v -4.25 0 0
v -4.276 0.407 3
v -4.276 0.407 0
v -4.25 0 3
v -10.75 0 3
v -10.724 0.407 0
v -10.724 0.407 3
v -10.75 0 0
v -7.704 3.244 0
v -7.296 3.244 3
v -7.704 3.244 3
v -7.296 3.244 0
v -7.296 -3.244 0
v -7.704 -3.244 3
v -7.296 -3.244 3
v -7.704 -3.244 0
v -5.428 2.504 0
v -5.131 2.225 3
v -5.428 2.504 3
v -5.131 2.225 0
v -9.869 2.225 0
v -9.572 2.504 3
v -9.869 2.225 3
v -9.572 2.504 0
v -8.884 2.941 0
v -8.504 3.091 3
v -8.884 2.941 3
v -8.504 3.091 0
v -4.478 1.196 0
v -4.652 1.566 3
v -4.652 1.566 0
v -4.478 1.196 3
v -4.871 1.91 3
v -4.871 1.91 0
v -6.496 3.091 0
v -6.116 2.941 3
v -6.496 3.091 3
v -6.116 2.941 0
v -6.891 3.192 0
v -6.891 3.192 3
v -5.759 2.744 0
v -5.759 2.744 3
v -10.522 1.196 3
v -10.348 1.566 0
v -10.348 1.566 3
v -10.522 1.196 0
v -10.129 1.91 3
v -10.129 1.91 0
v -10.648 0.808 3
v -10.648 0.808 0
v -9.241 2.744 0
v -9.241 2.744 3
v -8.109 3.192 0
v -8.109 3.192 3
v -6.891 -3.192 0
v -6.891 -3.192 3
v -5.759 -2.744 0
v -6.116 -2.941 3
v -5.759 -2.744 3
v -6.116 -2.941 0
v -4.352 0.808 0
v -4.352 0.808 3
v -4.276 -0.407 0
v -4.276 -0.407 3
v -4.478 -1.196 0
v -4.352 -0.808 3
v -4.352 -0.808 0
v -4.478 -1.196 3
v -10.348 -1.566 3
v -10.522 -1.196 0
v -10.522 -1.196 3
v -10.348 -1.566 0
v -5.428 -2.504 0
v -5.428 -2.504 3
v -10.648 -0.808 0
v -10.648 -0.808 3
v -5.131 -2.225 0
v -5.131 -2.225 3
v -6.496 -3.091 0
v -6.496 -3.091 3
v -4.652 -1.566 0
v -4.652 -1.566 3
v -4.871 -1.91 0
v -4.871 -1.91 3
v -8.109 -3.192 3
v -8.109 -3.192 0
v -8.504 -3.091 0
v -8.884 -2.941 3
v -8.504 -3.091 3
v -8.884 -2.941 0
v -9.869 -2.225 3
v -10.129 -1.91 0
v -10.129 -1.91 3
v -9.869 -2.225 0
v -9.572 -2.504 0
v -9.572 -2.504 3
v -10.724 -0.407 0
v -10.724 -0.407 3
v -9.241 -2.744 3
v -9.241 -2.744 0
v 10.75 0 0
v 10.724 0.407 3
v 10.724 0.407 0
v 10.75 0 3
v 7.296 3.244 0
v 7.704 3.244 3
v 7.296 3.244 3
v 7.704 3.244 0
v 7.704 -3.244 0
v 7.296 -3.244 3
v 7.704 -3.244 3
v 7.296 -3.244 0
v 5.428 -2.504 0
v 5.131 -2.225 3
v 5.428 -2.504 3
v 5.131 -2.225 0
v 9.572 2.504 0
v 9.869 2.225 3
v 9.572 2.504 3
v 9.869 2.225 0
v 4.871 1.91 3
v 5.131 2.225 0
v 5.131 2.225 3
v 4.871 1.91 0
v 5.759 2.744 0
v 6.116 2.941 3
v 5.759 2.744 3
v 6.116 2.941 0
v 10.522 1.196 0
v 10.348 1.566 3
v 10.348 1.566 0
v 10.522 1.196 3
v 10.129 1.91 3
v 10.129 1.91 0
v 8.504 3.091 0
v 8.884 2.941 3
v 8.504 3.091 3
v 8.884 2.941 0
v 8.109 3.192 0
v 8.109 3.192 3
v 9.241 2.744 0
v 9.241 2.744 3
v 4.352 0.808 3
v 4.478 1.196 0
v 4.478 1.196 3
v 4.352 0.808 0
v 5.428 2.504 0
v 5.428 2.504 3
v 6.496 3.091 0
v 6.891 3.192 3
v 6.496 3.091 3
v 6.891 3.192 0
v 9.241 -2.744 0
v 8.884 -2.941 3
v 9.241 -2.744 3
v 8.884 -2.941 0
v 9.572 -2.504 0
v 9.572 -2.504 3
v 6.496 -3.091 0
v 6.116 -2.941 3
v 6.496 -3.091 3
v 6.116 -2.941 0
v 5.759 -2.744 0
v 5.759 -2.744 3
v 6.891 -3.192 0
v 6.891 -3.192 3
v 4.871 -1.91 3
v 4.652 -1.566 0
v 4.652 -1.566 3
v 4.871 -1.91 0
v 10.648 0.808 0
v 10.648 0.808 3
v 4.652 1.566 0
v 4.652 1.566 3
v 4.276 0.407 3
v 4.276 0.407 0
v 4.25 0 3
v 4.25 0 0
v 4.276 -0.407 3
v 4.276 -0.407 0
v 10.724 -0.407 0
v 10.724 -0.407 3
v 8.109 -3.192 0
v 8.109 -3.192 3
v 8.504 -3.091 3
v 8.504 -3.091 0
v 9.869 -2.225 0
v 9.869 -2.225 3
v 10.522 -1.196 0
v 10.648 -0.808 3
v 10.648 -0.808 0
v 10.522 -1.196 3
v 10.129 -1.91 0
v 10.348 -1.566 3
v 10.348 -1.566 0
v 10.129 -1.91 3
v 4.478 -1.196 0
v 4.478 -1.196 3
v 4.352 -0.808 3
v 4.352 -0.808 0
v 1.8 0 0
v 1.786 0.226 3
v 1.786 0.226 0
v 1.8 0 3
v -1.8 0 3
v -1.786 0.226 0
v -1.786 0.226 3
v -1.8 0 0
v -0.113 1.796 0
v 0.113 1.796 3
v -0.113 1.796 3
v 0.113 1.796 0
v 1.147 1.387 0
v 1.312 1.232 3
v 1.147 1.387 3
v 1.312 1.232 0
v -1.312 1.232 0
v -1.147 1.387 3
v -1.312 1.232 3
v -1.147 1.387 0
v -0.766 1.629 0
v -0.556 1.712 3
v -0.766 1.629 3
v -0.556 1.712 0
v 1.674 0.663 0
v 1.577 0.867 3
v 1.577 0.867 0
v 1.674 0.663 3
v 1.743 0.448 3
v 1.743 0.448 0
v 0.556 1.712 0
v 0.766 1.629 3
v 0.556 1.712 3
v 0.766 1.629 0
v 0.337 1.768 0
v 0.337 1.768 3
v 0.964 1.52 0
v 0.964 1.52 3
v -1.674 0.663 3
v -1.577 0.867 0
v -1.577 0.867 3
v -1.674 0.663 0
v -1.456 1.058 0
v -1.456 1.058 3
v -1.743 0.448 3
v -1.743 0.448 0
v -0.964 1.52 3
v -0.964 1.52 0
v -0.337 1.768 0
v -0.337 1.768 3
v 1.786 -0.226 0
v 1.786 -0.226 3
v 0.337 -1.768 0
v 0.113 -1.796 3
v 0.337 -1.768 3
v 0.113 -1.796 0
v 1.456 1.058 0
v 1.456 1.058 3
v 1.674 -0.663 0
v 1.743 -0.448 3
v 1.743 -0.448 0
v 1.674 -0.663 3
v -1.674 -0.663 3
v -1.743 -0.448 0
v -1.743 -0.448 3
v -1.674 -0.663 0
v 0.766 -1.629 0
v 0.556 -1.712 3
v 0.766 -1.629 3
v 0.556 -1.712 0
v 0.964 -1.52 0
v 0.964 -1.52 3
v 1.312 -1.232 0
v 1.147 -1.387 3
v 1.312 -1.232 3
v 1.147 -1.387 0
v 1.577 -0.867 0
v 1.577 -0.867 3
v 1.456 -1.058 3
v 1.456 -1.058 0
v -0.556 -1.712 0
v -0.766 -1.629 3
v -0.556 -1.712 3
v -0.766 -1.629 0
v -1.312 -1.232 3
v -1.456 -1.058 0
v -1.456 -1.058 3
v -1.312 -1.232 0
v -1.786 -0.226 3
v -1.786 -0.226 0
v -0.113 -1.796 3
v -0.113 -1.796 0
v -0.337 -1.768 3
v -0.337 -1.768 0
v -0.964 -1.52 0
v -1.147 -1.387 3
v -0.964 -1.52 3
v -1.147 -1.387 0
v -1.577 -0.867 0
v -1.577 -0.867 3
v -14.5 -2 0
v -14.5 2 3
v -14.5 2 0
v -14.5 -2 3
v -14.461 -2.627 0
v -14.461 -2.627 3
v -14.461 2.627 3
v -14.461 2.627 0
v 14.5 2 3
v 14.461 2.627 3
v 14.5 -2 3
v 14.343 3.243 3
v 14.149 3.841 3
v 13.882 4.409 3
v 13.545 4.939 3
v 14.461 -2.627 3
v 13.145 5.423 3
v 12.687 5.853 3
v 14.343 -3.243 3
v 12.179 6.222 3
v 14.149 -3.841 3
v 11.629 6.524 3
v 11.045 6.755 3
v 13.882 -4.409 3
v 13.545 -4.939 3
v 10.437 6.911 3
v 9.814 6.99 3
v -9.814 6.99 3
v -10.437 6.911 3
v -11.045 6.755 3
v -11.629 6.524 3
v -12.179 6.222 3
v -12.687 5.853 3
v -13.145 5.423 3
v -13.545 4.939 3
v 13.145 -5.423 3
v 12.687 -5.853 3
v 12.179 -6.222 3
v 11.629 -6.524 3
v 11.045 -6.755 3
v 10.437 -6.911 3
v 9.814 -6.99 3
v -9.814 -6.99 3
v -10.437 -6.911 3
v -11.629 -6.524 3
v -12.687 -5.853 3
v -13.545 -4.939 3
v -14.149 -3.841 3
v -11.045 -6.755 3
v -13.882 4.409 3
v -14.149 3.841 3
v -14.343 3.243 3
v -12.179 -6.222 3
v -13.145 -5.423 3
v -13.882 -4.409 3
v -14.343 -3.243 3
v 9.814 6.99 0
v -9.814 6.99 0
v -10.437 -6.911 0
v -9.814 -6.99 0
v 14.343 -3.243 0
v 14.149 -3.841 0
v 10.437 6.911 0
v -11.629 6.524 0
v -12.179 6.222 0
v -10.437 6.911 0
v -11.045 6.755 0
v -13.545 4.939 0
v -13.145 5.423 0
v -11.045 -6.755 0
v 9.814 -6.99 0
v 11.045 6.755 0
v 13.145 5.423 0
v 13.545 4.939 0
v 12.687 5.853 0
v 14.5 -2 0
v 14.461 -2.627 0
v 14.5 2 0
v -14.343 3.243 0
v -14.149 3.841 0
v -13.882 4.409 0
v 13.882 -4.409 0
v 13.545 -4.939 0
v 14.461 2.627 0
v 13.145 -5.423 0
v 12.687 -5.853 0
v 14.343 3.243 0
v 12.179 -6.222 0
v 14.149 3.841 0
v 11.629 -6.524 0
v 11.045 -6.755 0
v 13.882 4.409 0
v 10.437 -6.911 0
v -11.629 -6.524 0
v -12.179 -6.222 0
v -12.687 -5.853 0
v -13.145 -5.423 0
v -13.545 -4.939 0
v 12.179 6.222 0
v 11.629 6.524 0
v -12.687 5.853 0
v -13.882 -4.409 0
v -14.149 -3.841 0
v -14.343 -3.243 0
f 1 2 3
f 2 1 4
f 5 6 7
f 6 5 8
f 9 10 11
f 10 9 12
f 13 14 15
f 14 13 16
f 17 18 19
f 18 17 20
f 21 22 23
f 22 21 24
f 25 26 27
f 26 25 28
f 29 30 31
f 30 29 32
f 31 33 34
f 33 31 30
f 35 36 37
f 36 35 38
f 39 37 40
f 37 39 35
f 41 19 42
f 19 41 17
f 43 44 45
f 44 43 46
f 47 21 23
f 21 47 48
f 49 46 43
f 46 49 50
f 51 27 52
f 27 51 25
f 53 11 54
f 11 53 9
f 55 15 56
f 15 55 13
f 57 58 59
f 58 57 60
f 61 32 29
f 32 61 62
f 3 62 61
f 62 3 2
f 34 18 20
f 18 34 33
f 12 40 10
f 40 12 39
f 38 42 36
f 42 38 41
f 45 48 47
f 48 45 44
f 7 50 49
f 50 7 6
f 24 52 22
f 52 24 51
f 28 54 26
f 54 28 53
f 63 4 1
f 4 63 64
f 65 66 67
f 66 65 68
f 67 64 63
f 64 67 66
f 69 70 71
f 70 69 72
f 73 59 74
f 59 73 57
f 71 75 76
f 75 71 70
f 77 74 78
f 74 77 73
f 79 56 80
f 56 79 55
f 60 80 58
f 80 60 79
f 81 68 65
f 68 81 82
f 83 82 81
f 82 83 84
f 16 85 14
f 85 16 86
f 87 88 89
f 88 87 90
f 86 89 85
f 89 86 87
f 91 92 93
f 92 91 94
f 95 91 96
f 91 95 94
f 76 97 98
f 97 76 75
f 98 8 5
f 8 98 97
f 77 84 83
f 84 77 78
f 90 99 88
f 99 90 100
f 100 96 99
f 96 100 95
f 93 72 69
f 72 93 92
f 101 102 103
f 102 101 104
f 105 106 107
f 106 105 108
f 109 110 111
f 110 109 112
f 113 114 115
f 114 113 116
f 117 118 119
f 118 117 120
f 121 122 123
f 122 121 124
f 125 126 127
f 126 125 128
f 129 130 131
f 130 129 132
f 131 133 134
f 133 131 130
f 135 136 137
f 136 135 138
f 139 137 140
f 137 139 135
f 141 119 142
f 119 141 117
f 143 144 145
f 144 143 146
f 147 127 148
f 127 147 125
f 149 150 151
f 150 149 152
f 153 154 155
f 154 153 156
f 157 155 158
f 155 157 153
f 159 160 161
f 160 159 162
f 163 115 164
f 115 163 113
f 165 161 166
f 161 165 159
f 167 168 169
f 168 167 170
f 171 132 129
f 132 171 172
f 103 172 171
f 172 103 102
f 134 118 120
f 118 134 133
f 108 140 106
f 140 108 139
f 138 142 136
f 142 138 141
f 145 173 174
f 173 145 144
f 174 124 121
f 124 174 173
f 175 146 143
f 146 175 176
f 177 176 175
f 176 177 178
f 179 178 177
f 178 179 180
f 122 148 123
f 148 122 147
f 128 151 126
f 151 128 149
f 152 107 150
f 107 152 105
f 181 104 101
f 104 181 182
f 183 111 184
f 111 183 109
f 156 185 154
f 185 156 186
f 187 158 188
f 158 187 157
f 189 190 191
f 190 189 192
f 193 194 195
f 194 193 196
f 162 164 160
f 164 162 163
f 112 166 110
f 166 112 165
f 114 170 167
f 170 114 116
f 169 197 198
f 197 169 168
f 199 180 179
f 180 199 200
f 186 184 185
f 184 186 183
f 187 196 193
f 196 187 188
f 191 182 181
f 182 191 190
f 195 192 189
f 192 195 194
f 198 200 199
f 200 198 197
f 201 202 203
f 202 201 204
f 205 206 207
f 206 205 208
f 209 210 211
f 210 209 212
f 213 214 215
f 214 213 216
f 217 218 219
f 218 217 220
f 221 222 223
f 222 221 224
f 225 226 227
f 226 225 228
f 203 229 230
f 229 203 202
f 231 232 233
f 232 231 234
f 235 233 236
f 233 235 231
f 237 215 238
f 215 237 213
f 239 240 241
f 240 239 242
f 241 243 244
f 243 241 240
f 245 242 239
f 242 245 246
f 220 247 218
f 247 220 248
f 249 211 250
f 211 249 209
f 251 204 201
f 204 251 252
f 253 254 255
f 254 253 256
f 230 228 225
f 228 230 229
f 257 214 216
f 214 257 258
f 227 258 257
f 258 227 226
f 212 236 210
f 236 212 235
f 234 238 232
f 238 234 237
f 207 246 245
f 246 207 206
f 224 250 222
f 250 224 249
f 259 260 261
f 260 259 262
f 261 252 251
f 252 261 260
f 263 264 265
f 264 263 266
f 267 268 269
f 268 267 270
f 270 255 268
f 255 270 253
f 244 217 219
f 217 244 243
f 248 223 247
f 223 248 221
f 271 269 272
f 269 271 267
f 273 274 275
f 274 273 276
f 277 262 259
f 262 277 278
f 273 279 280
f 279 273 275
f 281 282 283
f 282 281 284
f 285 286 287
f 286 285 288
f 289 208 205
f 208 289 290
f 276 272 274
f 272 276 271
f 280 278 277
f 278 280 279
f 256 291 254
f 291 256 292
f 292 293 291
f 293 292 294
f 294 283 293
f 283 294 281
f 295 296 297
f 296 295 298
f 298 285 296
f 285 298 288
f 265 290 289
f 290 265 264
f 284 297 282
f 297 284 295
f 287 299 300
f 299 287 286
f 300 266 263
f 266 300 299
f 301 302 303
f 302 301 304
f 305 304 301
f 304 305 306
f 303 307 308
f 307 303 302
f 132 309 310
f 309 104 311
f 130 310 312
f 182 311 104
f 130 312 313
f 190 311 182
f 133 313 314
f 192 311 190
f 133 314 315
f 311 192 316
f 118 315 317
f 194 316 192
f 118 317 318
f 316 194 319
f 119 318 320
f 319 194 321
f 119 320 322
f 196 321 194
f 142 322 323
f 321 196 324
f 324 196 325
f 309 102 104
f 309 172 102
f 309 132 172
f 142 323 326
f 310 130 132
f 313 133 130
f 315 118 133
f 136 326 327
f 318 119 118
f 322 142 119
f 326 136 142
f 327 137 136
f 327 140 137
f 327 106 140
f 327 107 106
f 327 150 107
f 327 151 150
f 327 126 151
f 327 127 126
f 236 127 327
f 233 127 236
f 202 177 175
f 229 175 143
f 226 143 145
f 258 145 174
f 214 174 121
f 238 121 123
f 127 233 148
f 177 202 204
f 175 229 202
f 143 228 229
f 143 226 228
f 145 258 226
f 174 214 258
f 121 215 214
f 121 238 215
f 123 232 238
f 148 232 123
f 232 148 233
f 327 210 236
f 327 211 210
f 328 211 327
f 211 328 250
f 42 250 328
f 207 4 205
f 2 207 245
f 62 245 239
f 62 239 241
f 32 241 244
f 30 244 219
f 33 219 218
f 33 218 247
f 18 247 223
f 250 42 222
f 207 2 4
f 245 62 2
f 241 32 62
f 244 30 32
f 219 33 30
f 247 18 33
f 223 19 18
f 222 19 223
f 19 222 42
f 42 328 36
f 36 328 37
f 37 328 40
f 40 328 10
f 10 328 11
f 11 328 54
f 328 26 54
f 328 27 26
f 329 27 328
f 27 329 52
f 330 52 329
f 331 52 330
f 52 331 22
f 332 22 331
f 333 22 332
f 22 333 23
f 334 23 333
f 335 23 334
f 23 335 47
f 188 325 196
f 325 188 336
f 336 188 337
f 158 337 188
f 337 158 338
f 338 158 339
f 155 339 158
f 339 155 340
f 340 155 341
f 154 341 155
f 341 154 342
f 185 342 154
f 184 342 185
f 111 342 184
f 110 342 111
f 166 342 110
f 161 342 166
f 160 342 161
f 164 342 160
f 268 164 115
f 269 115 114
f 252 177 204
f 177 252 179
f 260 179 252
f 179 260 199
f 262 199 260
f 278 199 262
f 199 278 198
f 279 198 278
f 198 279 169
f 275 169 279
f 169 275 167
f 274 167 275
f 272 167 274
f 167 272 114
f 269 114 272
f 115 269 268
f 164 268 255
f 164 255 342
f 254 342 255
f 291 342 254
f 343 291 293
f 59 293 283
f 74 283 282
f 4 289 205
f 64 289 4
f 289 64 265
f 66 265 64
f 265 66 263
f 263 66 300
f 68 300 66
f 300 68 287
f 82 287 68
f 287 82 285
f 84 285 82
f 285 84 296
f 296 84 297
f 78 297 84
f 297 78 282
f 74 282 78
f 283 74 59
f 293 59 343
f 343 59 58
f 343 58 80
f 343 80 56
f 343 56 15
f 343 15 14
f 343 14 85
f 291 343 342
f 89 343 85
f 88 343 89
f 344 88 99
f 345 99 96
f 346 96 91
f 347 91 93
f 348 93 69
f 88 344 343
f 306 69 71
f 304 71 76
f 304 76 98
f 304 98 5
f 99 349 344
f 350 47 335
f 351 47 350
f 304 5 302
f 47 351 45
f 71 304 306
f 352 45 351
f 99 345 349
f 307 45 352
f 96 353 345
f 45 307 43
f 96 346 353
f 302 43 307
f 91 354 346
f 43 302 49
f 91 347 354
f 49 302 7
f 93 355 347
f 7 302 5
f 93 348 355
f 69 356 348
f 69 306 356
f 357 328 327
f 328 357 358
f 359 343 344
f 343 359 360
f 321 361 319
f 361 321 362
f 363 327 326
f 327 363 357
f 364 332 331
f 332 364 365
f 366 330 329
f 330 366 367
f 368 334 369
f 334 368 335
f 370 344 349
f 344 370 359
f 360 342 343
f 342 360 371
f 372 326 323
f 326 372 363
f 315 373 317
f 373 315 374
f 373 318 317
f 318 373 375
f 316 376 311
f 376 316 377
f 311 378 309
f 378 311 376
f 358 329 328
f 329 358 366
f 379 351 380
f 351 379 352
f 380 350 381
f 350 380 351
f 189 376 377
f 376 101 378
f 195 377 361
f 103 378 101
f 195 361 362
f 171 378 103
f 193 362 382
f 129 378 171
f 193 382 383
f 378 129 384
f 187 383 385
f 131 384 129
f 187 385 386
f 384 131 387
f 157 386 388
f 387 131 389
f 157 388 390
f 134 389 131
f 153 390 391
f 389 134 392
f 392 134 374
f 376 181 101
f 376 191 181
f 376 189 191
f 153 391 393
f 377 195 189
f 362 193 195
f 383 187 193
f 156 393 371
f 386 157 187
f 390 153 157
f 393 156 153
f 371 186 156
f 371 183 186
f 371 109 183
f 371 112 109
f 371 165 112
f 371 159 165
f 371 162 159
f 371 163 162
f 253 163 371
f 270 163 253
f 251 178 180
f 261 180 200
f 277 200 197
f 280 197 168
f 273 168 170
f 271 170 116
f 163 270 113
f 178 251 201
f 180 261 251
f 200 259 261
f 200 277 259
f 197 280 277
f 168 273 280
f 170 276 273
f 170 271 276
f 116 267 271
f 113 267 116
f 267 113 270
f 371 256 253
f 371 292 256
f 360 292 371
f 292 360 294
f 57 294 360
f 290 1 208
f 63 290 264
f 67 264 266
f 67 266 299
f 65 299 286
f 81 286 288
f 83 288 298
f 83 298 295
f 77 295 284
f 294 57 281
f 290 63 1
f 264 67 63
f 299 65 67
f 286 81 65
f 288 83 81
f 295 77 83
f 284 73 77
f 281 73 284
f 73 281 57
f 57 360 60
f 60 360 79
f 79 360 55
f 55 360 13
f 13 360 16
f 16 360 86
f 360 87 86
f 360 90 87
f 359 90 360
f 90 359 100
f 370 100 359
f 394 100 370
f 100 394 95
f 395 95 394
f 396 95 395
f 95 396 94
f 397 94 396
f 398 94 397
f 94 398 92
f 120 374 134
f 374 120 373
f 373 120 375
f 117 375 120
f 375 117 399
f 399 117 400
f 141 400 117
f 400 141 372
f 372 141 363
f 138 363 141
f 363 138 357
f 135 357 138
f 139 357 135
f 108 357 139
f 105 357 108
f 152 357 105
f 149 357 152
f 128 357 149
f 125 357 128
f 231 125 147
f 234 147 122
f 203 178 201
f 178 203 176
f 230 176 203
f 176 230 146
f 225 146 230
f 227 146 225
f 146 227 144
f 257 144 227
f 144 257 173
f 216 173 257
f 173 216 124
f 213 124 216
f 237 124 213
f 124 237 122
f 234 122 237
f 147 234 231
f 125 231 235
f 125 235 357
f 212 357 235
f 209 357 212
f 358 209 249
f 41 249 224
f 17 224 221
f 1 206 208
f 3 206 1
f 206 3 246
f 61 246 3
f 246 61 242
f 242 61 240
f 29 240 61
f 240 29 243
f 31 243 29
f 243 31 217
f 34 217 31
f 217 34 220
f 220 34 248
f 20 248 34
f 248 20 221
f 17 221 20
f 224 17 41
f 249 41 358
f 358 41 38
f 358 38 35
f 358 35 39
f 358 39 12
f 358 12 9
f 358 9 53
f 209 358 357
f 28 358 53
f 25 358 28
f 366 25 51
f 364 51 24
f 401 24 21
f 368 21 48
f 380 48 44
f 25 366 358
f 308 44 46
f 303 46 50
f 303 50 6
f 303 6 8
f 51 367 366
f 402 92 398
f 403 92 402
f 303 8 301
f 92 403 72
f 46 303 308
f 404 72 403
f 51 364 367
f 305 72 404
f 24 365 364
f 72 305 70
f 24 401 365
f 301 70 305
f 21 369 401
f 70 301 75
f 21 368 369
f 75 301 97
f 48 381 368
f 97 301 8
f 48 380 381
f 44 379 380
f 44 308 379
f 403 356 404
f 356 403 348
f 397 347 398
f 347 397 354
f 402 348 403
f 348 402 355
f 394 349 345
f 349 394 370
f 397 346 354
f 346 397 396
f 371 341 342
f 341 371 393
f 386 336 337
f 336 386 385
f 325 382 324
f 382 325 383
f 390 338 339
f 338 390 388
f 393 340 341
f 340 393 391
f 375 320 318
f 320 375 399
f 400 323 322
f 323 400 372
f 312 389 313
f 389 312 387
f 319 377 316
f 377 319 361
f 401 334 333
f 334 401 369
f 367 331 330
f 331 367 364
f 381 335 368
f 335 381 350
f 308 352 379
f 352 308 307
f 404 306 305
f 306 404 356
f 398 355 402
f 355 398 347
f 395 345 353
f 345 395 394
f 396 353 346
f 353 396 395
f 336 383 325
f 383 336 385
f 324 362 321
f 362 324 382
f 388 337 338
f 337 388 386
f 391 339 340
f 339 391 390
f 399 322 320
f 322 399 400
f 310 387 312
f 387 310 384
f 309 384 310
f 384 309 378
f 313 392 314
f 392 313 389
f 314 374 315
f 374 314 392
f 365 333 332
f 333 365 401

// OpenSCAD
$fn = 50;


difference() {
	union() {
		hull() {
			translate(v = [-9.5000000000, 2.0000000000, 0]) {
				cylinder(h = 3, r = 5);
			}
			translate(v = [9.5000000000, 2.0000000000, 0]) {
				cylinder(h = 3, r = 5);
			}
			translate(v = [-9.5000000000, -2.0000000000, 0]) {
				cylinder(h = 3, r = 5);
			}
			translate(v = [9.5000000000, -2.0000000000, 0]) {
				cylinder(h = 3, r = 5);
			}
		}
	}
	union() {
		translate(v = [-7.5000000000, 0.0000000000, 0]) {
			translate(v = [0, 0, -100]) {
				cylinder(h = 200, r = 3.2500000000);
			}
		}
		translate(v = [7.5000000000, 0.0000000000, 0]) {
			translate(v = [0, 0, -100]) {
				cylinder(h = 200, r = 3.2500000000);
			}
		}
		translate(v = [-7.5000000000, 0.0000000000, 0]) {
			translate(v = [0, 0, -100]) {
				cylinder(h = 200, r = 1.8000000000);
			}
		}
		translate(v = [0, 0, -100]) {
			cylinder(h = 200, r = 1.8000000000);
		}
		translate(v = [7.5000000000, 0.0000000000, 0]) {
			translate(v = [0, 0, -100]) {
				cylinder(h = 200, r = 1.8000000000);
			}
		}
	}
}
